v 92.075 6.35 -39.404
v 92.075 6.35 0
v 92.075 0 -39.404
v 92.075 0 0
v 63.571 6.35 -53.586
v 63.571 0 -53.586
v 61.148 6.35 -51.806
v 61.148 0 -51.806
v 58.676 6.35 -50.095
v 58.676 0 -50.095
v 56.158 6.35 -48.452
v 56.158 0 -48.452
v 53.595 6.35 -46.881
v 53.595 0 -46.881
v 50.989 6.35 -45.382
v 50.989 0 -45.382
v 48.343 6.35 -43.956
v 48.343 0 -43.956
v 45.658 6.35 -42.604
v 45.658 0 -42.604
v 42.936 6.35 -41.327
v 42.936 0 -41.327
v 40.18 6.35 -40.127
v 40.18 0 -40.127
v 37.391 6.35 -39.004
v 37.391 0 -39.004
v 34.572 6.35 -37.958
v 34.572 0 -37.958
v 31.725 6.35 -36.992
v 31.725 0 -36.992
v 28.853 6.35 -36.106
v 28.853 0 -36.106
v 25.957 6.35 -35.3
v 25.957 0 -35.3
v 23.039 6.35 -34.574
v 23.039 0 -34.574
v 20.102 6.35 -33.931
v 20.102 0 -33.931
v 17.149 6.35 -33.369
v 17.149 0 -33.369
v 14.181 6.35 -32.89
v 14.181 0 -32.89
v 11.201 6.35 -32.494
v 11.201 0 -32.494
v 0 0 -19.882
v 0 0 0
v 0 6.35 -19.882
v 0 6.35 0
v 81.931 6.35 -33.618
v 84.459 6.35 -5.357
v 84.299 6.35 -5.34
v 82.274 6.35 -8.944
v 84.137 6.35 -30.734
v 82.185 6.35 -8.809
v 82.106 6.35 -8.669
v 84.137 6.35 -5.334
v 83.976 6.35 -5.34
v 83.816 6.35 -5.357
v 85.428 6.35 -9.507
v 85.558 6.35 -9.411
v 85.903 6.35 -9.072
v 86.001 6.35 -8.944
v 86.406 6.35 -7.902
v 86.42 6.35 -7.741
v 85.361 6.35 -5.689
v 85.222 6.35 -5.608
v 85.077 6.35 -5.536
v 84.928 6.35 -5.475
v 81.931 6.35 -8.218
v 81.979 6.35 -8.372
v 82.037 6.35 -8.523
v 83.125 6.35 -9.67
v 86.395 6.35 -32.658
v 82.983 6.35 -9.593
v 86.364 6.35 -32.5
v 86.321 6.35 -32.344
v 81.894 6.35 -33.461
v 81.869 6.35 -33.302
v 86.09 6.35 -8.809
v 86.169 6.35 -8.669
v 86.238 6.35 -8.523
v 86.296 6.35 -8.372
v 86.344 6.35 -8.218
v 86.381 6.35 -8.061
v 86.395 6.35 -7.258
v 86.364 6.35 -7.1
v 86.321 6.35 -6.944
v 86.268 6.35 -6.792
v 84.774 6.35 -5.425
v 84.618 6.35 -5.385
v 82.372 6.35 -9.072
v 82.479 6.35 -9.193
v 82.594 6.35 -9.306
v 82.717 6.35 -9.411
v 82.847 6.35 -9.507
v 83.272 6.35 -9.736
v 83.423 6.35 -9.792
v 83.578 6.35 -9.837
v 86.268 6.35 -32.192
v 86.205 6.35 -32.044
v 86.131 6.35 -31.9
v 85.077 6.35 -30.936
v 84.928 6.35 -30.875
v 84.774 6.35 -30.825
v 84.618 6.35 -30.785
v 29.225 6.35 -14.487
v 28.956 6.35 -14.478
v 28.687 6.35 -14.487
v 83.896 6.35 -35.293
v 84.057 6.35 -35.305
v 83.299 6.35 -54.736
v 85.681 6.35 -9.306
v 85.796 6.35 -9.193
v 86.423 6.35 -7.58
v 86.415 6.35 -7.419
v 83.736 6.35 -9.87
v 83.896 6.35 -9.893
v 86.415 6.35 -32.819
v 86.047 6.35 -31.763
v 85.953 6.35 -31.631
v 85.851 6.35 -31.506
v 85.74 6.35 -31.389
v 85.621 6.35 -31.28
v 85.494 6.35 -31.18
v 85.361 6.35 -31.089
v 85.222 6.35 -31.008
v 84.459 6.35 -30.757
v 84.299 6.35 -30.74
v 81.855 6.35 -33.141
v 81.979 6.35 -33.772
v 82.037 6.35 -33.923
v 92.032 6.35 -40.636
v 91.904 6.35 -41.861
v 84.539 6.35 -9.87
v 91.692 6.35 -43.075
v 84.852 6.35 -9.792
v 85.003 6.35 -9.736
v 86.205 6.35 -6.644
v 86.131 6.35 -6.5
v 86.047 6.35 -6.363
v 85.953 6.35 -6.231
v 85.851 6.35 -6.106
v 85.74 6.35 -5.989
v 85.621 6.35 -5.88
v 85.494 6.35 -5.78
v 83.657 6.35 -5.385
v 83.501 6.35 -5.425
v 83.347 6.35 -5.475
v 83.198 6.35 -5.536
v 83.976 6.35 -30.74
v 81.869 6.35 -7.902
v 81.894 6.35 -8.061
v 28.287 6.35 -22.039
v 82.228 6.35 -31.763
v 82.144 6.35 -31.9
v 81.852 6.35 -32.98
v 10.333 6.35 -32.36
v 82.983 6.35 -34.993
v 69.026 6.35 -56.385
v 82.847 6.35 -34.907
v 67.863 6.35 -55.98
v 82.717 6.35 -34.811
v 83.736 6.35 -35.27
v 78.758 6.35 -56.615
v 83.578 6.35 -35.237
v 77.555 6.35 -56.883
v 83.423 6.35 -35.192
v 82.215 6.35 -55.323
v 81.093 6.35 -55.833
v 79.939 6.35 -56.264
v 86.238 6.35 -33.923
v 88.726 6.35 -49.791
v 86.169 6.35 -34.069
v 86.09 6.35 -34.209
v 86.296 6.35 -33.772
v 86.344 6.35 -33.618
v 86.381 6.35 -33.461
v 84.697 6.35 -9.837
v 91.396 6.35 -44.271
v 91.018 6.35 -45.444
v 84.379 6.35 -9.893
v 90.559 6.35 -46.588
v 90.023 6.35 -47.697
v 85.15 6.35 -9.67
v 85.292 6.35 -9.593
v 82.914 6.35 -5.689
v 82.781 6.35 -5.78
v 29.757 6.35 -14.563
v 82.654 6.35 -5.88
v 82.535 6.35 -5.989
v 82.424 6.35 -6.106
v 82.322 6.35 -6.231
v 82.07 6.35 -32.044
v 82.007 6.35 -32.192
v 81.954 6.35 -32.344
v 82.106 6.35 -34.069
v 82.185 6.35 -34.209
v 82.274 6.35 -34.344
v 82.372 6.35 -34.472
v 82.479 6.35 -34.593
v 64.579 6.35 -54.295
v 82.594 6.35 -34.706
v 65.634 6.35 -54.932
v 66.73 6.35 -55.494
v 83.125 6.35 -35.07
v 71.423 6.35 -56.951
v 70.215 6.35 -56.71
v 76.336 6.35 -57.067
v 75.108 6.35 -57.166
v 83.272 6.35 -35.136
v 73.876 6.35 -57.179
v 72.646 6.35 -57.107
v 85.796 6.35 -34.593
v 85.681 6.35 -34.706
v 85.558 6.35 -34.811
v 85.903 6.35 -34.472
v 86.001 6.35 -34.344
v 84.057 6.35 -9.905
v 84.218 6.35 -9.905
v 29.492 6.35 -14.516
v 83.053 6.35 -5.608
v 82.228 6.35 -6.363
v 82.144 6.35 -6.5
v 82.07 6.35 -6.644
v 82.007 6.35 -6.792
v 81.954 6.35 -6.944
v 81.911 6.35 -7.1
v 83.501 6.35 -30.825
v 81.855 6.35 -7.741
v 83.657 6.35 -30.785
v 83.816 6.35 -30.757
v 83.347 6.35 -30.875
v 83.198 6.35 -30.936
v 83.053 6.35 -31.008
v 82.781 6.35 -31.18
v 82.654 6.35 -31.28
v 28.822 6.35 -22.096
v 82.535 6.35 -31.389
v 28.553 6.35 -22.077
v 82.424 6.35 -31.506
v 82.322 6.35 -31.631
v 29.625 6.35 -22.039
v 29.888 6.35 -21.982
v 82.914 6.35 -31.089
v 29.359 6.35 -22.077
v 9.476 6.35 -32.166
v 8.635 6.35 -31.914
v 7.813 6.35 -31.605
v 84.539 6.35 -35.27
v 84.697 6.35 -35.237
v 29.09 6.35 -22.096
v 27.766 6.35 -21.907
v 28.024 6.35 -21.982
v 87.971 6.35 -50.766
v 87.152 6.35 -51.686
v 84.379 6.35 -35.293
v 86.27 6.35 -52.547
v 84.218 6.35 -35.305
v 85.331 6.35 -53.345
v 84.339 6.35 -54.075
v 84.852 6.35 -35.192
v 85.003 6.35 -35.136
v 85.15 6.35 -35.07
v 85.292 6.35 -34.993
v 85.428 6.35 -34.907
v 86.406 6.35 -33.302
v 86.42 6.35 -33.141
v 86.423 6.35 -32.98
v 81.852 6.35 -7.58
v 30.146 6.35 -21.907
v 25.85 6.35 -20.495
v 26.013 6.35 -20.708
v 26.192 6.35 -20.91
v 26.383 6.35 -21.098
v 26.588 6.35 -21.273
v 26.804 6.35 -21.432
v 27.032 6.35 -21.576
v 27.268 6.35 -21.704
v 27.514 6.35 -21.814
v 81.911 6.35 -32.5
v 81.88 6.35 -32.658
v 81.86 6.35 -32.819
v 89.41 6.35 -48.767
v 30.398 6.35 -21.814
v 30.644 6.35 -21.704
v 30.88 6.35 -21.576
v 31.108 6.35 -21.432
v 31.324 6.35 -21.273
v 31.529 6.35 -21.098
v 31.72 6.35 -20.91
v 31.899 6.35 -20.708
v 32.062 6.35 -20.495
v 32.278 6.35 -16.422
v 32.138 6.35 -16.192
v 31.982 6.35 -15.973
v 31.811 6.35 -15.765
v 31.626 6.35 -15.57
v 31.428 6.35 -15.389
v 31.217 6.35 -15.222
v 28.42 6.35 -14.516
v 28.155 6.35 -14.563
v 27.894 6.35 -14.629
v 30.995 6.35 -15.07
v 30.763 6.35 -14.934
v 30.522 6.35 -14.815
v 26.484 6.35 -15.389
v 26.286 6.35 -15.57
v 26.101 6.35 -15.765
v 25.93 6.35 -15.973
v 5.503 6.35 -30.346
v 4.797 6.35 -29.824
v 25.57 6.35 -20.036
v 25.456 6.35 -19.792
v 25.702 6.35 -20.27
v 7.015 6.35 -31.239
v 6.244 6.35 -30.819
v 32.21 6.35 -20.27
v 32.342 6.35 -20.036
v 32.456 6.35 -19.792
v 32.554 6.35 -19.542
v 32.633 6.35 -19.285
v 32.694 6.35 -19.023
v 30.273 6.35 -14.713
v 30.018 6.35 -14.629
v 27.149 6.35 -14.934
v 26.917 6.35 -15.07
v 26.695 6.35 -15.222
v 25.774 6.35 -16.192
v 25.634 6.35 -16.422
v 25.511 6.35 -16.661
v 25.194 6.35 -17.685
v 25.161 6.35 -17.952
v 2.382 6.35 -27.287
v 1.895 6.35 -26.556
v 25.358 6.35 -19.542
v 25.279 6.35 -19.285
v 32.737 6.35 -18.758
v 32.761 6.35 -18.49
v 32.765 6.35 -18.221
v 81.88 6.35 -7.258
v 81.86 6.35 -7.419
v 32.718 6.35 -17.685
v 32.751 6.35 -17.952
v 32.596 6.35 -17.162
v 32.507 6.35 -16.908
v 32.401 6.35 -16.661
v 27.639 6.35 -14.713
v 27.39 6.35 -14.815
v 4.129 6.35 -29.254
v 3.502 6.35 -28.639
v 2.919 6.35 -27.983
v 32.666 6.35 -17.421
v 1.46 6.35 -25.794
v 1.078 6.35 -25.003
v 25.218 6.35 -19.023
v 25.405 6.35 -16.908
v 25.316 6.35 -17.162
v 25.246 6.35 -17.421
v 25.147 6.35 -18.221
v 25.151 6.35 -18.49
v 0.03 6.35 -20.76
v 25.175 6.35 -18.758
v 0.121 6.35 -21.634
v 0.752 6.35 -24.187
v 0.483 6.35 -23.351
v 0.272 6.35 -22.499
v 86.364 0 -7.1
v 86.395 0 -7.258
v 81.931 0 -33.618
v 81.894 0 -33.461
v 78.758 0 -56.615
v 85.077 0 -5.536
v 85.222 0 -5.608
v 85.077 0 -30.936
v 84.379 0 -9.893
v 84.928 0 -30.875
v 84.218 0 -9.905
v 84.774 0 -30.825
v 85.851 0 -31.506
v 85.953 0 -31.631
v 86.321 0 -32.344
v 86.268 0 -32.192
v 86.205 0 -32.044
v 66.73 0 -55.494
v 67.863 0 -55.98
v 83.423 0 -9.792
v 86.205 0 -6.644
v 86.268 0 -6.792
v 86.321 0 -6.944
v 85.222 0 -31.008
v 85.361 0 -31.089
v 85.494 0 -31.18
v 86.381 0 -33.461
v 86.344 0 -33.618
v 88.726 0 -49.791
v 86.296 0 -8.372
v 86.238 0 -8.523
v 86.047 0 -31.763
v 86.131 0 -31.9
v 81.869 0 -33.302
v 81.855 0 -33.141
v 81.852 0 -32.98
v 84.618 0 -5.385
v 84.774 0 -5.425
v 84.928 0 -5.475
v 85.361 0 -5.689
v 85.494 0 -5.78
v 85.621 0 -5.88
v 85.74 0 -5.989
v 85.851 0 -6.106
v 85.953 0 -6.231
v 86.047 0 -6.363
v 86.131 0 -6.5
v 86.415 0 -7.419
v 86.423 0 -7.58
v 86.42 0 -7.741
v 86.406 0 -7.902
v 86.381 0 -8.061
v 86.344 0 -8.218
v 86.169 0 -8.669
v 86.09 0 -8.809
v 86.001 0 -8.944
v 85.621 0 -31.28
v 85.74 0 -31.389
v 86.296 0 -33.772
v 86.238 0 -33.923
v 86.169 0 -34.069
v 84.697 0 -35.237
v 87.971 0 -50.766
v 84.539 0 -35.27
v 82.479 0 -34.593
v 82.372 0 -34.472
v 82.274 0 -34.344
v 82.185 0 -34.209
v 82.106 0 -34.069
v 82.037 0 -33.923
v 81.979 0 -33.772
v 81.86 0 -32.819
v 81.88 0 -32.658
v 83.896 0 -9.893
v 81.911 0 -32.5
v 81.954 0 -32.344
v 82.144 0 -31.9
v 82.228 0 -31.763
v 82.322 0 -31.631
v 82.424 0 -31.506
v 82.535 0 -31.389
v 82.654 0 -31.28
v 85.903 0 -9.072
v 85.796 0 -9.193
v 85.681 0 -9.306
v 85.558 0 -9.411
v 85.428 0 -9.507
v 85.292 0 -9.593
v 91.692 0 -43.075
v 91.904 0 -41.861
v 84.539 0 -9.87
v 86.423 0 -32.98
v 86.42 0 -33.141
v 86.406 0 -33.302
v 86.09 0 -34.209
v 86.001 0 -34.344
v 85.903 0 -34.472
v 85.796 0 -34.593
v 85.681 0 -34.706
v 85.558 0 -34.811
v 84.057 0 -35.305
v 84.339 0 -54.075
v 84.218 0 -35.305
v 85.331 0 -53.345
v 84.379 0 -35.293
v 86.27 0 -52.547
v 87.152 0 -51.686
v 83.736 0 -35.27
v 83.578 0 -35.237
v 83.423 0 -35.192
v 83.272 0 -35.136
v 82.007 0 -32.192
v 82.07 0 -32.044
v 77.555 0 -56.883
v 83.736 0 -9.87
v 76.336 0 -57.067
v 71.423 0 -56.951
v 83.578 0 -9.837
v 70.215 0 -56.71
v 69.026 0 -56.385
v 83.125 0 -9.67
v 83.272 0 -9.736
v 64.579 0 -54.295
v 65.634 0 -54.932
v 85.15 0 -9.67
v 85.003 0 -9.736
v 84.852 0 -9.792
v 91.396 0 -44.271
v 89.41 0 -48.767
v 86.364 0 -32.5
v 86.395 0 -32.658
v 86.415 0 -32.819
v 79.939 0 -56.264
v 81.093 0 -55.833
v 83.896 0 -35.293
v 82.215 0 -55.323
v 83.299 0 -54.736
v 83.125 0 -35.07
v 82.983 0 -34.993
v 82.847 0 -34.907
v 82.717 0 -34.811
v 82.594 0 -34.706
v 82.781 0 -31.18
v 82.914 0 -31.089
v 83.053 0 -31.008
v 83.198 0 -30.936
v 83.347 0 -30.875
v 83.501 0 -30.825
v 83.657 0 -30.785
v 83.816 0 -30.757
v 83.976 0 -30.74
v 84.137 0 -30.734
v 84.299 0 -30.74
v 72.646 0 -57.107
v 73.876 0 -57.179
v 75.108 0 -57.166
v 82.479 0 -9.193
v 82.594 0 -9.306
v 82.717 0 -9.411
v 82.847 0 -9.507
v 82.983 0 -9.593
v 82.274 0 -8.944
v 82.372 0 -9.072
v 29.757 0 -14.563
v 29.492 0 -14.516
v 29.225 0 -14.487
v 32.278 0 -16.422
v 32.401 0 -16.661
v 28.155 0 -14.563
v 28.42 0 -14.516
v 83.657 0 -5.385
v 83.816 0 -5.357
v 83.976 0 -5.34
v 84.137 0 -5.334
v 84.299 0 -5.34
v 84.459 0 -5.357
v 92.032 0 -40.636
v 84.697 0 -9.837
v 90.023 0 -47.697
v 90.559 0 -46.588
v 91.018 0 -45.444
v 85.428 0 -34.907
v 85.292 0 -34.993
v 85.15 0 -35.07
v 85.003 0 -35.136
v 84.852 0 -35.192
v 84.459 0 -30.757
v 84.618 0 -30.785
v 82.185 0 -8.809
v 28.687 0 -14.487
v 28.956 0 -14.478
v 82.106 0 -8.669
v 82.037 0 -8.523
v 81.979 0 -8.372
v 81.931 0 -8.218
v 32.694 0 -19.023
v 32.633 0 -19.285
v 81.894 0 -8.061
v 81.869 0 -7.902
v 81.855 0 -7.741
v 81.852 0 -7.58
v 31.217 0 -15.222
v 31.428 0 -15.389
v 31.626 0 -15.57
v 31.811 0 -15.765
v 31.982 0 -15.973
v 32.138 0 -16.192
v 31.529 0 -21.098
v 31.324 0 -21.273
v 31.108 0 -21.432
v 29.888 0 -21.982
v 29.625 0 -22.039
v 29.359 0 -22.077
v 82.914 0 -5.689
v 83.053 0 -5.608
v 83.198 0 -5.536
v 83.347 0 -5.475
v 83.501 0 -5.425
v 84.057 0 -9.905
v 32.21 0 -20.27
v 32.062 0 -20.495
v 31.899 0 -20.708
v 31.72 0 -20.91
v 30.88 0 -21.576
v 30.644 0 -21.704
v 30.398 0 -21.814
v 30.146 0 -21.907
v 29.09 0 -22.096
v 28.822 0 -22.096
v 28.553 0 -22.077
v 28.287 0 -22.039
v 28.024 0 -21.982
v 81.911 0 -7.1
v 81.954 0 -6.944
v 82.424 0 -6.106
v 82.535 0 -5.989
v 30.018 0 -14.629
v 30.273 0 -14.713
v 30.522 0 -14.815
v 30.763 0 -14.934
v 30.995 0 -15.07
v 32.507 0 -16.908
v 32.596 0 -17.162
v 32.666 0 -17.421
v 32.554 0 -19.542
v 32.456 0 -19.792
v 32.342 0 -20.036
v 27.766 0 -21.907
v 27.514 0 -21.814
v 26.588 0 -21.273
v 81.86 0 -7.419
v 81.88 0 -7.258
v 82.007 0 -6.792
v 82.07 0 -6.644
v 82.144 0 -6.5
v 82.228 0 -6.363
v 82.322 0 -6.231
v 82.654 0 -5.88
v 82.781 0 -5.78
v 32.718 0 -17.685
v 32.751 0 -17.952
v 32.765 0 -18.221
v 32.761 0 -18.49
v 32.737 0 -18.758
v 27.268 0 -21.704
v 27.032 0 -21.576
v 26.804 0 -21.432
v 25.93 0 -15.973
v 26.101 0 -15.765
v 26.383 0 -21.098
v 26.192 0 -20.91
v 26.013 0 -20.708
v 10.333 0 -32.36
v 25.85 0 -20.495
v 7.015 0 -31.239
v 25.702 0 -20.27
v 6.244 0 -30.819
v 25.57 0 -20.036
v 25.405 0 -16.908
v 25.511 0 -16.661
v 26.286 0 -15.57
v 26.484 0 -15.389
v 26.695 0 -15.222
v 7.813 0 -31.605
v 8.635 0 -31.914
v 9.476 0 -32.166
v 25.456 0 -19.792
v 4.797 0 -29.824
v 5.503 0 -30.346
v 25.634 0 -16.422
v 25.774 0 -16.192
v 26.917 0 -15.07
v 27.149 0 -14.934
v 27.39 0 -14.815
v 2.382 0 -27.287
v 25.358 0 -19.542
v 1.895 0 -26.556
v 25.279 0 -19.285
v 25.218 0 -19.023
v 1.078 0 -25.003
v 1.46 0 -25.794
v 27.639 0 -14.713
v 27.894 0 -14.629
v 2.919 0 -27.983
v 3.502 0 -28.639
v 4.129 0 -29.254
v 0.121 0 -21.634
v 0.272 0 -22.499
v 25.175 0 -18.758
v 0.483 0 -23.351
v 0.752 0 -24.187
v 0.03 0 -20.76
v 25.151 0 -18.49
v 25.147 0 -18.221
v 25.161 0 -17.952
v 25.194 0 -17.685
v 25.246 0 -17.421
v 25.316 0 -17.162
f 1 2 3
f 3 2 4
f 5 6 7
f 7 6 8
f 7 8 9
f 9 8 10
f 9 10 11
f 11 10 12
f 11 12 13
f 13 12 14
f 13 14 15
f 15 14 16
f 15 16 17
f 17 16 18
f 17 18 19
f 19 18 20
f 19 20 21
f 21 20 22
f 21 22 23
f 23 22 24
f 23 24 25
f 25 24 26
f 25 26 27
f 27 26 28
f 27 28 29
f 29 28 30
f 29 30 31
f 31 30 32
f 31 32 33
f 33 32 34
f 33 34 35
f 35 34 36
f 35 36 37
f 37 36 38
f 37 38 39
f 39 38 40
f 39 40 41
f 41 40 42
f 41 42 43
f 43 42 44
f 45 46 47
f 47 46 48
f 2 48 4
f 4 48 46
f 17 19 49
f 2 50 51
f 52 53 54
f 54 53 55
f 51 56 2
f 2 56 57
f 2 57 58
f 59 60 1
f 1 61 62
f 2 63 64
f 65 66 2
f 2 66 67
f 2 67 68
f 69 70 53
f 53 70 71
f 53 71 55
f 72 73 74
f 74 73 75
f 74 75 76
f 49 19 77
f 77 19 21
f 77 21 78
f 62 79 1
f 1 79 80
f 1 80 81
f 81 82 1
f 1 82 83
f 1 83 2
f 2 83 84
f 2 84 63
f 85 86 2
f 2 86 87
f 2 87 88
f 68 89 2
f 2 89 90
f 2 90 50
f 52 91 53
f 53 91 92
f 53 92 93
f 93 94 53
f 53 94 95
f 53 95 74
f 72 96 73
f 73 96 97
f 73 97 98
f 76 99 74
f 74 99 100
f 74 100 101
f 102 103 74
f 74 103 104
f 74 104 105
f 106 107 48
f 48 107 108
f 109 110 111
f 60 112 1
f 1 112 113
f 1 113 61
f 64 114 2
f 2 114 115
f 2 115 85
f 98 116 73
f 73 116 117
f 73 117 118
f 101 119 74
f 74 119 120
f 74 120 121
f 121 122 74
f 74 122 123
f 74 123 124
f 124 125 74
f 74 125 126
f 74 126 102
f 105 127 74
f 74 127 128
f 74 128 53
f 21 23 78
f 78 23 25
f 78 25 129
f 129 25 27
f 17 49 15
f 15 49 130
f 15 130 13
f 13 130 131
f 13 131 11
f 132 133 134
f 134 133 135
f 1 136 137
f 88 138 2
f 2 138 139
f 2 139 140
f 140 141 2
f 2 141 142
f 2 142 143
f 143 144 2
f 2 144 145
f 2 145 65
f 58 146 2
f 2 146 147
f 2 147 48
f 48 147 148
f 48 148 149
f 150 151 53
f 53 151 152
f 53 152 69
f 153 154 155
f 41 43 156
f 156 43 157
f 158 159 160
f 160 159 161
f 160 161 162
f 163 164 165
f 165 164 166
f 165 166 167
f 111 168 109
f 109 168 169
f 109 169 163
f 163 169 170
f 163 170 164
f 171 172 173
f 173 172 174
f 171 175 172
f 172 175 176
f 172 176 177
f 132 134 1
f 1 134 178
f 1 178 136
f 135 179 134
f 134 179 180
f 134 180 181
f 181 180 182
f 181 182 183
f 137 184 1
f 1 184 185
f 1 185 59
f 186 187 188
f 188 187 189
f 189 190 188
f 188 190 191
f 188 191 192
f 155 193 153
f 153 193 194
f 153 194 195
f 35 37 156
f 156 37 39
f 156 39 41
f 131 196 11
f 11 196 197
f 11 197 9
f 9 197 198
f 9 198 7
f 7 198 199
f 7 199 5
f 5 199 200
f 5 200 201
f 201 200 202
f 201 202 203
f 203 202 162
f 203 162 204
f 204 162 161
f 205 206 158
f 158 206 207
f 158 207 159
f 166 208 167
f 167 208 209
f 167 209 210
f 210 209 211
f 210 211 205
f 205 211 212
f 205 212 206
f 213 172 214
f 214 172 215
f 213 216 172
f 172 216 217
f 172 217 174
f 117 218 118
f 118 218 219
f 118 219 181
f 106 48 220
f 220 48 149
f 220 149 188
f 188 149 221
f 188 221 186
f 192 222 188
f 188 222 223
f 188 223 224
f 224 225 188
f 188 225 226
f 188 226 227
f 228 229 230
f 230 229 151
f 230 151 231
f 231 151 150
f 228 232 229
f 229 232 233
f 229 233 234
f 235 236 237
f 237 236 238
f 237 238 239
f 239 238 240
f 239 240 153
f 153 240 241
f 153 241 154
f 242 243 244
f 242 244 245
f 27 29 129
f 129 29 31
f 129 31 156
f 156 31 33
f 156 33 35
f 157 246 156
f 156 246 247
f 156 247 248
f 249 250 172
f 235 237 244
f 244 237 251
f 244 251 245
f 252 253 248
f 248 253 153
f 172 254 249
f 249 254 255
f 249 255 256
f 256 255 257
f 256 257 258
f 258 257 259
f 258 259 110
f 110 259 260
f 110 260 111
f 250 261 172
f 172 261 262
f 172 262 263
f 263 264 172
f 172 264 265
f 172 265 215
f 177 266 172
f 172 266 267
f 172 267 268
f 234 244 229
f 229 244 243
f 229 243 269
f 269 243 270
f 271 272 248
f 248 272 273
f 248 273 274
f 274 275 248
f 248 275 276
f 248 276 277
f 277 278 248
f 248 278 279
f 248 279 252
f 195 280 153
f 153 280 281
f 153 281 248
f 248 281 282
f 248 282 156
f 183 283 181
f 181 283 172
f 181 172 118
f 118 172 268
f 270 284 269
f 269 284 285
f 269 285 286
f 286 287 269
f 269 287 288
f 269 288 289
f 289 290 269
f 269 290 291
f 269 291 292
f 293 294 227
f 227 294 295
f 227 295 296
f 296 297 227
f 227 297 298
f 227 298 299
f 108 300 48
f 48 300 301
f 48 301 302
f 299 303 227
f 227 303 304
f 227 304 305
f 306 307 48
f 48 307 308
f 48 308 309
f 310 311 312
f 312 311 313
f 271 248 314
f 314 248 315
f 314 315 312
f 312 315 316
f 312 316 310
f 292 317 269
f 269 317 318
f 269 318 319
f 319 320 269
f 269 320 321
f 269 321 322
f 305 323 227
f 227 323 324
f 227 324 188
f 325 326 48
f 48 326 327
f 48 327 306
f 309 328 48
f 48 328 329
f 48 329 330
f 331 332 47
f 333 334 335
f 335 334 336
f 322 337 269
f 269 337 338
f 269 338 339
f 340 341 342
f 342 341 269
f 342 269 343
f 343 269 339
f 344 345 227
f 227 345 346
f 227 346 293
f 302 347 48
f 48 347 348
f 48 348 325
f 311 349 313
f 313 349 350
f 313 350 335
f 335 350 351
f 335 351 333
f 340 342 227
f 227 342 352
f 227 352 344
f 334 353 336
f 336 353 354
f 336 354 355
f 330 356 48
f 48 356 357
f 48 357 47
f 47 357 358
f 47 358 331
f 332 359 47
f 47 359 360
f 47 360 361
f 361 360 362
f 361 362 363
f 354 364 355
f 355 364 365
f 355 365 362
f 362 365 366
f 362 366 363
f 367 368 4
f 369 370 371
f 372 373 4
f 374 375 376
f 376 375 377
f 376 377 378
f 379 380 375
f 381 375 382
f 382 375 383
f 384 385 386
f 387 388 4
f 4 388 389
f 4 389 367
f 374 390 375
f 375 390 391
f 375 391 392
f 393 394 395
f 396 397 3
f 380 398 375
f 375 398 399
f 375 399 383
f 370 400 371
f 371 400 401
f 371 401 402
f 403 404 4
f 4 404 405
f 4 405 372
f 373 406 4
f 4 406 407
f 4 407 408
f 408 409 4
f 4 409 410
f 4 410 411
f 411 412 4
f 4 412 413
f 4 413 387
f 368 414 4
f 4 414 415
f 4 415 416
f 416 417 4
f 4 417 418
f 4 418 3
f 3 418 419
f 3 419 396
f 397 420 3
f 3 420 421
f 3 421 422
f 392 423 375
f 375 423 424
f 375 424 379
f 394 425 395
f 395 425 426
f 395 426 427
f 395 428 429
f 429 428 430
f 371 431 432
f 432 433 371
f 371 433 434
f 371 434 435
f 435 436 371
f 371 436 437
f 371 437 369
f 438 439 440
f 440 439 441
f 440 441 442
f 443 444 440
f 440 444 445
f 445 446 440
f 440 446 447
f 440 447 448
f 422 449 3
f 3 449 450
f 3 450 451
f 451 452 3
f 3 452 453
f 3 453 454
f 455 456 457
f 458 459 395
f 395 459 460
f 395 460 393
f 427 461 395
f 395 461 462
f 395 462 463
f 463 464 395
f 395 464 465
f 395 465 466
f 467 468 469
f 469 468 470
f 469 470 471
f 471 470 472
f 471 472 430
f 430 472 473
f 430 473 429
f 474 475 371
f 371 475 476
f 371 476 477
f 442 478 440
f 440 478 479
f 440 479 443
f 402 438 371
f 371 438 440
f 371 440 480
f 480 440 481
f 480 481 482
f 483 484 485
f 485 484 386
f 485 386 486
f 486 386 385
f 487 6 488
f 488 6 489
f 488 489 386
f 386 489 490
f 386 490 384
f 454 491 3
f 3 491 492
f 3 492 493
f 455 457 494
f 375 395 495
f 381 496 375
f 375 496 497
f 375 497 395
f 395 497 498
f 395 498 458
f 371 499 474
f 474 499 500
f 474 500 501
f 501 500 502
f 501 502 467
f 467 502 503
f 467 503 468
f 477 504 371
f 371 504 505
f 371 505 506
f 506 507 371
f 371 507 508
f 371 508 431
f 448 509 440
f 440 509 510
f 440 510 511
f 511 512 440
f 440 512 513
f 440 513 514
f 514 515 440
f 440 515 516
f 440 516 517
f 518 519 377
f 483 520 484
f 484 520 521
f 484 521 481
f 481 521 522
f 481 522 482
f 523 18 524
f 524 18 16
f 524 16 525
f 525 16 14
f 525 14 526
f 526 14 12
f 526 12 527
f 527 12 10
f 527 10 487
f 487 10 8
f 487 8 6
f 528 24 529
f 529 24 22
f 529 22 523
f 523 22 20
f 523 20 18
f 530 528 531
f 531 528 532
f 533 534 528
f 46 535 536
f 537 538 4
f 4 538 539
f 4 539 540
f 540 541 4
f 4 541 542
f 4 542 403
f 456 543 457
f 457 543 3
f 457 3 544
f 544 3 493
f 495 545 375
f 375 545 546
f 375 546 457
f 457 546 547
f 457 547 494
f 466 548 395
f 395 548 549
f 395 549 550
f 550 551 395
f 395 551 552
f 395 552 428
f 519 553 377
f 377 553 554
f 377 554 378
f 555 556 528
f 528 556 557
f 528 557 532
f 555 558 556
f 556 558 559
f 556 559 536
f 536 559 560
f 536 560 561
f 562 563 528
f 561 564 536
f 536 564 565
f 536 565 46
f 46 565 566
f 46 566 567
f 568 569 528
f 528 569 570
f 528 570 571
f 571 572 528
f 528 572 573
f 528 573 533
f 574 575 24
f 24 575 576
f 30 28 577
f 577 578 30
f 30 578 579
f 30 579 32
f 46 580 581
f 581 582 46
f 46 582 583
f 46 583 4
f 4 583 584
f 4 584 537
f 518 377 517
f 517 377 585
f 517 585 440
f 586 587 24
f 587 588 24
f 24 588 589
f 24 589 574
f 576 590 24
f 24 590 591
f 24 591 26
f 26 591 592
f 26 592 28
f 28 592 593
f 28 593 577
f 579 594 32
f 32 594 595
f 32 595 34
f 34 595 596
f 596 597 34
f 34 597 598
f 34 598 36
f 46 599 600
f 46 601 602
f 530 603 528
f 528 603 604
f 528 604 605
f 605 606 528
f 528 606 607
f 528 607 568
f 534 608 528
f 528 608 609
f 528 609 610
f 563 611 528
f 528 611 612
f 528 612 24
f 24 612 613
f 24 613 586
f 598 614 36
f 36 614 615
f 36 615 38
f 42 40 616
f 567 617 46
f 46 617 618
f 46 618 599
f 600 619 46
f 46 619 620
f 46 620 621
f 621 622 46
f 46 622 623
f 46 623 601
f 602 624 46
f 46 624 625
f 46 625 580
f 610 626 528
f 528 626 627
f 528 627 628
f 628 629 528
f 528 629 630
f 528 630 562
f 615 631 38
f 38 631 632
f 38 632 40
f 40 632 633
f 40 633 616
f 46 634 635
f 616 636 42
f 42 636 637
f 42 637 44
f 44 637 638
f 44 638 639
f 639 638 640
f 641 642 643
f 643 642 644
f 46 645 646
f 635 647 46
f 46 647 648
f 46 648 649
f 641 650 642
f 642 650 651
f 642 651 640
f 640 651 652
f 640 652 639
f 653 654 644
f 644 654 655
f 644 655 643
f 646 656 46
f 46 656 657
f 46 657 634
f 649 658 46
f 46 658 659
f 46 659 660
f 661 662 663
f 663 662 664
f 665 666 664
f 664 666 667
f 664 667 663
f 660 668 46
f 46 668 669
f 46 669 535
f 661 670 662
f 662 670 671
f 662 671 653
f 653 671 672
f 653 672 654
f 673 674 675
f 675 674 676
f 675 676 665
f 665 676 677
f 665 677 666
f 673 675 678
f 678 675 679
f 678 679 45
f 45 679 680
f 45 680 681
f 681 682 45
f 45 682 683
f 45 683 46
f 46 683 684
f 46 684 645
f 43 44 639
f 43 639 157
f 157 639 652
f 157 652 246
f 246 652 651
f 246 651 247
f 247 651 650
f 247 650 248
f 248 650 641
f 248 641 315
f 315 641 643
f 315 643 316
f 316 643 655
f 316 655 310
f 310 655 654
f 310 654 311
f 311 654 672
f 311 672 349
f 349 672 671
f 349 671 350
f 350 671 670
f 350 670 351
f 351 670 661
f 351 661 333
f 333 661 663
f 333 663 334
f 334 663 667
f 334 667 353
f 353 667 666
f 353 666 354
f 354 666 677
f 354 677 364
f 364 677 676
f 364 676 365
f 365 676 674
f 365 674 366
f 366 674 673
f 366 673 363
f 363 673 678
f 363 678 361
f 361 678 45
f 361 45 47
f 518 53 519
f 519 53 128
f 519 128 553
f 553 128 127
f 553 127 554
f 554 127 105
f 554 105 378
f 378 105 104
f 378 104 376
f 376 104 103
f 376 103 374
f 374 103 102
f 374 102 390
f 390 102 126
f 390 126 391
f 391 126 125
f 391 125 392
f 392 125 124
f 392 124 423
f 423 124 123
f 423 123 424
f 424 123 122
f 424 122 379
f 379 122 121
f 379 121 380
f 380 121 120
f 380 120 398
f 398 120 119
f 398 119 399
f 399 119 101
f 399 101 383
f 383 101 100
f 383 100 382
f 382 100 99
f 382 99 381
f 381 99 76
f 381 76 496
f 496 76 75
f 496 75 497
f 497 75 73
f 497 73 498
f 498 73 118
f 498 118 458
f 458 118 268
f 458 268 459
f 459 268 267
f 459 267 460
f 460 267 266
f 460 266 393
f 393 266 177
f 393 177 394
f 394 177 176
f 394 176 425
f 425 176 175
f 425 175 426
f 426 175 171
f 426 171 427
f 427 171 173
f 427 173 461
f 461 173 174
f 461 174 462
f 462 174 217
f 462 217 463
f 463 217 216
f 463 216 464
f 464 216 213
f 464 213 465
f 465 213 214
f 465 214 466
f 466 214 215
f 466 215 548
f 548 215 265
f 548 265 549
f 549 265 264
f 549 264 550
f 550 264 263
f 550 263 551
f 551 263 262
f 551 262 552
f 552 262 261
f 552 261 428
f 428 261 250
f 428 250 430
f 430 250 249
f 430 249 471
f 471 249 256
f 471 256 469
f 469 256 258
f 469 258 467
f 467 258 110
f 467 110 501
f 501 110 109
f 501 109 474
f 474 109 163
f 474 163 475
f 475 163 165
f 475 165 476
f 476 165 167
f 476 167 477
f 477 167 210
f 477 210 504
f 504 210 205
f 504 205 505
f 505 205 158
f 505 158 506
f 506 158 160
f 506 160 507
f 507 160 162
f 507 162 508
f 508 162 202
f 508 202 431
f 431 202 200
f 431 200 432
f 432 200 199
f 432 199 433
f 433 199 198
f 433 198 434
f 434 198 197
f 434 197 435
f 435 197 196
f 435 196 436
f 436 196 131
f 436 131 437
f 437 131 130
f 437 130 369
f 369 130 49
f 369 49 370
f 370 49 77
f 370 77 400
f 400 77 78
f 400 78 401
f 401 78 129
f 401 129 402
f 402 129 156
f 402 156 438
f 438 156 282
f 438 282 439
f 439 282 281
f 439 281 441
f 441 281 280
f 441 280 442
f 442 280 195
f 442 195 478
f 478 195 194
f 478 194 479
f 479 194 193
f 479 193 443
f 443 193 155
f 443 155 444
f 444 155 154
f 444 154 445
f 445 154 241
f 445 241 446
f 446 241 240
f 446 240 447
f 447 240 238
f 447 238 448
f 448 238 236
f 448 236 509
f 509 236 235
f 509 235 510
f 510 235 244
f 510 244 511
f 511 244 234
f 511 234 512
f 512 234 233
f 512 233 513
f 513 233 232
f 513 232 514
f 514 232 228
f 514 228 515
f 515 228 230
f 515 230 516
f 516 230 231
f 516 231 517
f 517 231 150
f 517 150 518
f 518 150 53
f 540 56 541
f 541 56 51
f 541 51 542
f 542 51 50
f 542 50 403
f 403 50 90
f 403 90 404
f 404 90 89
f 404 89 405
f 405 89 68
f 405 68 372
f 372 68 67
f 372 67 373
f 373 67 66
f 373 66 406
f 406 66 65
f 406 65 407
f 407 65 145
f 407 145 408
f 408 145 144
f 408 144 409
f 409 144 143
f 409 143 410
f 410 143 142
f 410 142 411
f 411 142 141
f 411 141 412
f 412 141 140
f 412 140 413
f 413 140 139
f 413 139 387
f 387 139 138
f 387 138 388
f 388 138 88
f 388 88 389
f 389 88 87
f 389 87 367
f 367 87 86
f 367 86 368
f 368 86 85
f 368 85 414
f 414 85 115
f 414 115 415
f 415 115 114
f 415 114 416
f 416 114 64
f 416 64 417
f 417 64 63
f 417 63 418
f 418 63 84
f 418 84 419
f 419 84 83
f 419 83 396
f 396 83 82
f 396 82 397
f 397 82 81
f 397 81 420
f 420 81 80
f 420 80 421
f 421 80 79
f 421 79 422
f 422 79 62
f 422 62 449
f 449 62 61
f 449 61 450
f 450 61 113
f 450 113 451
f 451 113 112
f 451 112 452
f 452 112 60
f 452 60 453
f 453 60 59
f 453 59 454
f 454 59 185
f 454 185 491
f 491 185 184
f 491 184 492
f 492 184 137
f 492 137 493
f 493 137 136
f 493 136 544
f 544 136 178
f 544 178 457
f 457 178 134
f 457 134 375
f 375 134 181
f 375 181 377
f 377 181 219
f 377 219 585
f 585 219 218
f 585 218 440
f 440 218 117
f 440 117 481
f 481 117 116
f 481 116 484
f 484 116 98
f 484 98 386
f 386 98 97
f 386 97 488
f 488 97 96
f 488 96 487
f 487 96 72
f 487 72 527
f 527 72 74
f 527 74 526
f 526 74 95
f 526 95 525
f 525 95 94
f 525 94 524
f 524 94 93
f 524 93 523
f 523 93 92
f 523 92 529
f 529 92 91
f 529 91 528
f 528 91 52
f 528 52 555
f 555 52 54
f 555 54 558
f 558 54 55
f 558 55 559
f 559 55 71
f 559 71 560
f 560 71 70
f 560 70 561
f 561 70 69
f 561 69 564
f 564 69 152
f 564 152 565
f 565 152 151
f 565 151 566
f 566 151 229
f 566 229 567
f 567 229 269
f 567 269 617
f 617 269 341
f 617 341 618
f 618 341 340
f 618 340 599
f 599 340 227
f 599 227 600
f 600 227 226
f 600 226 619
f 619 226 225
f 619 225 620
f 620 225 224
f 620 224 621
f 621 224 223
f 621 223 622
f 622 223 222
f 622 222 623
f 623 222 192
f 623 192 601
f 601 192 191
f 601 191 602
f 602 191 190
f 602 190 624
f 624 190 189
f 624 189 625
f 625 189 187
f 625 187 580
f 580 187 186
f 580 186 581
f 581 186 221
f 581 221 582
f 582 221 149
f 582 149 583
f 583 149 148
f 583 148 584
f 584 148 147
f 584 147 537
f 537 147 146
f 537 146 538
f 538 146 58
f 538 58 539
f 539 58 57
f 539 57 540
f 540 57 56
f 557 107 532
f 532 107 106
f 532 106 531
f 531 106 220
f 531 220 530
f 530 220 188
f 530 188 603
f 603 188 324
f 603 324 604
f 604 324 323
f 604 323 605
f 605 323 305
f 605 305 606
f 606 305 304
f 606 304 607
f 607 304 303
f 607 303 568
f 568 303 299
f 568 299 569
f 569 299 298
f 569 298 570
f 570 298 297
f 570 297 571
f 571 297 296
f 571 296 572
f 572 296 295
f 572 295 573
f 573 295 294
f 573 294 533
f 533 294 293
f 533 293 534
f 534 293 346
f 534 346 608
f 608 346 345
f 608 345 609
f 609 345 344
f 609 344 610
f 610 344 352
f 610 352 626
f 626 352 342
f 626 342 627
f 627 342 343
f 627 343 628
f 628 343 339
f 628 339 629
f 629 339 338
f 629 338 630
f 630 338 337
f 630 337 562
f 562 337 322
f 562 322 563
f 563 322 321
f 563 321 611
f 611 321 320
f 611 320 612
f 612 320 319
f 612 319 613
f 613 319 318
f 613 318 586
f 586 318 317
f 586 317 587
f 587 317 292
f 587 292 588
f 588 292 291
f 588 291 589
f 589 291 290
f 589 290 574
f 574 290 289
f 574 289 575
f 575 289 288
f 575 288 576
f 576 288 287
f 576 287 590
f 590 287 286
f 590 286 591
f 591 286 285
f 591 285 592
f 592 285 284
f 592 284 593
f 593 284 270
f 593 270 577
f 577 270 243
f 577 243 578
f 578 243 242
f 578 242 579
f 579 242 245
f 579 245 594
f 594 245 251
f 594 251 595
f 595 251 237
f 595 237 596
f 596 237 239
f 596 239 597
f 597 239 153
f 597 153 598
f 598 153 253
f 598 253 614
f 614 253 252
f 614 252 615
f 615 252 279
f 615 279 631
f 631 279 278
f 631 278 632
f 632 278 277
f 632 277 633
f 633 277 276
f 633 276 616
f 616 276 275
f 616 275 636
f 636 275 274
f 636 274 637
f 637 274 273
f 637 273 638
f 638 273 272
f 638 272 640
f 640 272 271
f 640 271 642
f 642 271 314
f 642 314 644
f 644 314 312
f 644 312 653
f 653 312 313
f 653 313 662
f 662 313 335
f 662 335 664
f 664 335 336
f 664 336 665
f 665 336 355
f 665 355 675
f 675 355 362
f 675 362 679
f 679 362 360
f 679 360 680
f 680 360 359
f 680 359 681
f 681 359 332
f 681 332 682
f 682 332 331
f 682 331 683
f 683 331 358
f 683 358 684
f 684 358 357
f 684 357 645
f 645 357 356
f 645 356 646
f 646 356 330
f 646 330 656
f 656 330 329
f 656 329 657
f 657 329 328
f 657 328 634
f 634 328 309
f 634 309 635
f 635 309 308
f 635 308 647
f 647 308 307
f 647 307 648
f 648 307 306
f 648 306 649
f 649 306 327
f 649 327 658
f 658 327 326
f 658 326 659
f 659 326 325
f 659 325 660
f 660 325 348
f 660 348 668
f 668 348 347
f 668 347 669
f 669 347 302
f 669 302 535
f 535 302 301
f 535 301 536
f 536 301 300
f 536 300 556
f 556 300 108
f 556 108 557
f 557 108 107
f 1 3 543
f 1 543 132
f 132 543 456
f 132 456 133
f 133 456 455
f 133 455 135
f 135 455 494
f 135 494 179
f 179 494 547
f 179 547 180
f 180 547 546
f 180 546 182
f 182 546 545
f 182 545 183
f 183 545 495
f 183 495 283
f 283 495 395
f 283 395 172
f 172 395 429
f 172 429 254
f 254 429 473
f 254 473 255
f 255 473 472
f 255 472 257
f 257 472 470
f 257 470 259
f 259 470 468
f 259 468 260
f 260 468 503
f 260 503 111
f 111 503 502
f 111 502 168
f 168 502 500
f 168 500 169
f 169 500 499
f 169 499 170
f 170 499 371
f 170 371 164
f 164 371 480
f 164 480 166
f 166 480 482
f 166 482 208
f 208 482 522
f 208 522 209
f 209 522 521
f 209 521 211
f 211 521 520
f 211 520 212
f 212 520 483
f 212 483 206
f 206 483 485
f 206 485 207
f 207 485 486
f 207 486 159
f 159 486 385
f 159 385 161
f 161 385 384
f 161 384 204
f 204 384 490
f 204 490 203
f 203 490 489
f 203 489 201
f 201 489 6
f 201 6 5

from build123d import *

# Parameters (mm, degrees)
BOSS_EXTRUDE1_DEPTH = 6.35
FILLET1_R           = 12.7
SKETCH2_R           = 2.286
CUT_EXTRUDE1_DEPTH  = 127.107467202
SKETCH3_R           = 3.81
CUT_EXTRUDE2_DEPTH  = 127.107467202
FILLET2_R           = 17.78


with BuildPart() as part:
    # Sketch1 → Boss-Extrude1 (new body)
    with BuildSketch(Plane(origin=(0, 0, 0), x_dir=(1, 0, 0), z_dir=(0, 1, 0))):
        with BuildLine():
            Line((0, 0), (92.075, 0))
            Line((92.075, 0), (92.075, 85.93582))
            ThreePointArc((92.075, 85.93582), (53.210726842, 46.653837999), (0, 31.75))
            Line((0, 31.75), (0, 0))
        make_face()
    extrude(amount=BOSS_EXTRUDE1_DEPTH)

    # Fillet1
    fillet1_edges = [part.edges().sort_by_distance(p)[0] for p in [
        (0, 3.175, -31.75),
    ]]
    fillet(fillet1_edges, radius=FILLET1_R)

    # Sketch2 → Cut-Extrude1 (cut, through all)
    with BuildSketch(Plane(origin=(0, 6.35, 0), x_dir=(1, 0, 0), z_dir=(0, 1, 0))):
        with Locations(Location((84.1375, 7.62, 0), (0, 0, 270))):
            Circle(SKETCH2_R)
        with Locations(Location((84.1375, 33.02, 0), (0, 0, 270))):
            Circle(SKETCH2_R)
    extrude(amount=-CUT_EXTRUDE1_DEPTH, mode=Mode.SUBTRACT)

    # Sketch3 → Cut-Extrude2 (cut, through all)
    with BuildSketch(Plane(origin=(0, 6.35, 0), x_dir=(1, 0, 0), z_dir=(0, 1, 0))):
        with Locations(Location((28.956, 18.288, 0), (0, 0, 270))):
            Circle(SKETCH3_R)
    extrude(amount=-CUT_EXTRUDE2_DEPTH, mode=Mode.SUBTRACT)

    # Fillet2
    fillet2_edges = [part.edges().sort_by_distance(p)[0] for p in [
        (92.075, 3.175, -85.93582),
    ]]
    fillet(fillet2_edges, radius=FILLET2_R)


solid = part.part
